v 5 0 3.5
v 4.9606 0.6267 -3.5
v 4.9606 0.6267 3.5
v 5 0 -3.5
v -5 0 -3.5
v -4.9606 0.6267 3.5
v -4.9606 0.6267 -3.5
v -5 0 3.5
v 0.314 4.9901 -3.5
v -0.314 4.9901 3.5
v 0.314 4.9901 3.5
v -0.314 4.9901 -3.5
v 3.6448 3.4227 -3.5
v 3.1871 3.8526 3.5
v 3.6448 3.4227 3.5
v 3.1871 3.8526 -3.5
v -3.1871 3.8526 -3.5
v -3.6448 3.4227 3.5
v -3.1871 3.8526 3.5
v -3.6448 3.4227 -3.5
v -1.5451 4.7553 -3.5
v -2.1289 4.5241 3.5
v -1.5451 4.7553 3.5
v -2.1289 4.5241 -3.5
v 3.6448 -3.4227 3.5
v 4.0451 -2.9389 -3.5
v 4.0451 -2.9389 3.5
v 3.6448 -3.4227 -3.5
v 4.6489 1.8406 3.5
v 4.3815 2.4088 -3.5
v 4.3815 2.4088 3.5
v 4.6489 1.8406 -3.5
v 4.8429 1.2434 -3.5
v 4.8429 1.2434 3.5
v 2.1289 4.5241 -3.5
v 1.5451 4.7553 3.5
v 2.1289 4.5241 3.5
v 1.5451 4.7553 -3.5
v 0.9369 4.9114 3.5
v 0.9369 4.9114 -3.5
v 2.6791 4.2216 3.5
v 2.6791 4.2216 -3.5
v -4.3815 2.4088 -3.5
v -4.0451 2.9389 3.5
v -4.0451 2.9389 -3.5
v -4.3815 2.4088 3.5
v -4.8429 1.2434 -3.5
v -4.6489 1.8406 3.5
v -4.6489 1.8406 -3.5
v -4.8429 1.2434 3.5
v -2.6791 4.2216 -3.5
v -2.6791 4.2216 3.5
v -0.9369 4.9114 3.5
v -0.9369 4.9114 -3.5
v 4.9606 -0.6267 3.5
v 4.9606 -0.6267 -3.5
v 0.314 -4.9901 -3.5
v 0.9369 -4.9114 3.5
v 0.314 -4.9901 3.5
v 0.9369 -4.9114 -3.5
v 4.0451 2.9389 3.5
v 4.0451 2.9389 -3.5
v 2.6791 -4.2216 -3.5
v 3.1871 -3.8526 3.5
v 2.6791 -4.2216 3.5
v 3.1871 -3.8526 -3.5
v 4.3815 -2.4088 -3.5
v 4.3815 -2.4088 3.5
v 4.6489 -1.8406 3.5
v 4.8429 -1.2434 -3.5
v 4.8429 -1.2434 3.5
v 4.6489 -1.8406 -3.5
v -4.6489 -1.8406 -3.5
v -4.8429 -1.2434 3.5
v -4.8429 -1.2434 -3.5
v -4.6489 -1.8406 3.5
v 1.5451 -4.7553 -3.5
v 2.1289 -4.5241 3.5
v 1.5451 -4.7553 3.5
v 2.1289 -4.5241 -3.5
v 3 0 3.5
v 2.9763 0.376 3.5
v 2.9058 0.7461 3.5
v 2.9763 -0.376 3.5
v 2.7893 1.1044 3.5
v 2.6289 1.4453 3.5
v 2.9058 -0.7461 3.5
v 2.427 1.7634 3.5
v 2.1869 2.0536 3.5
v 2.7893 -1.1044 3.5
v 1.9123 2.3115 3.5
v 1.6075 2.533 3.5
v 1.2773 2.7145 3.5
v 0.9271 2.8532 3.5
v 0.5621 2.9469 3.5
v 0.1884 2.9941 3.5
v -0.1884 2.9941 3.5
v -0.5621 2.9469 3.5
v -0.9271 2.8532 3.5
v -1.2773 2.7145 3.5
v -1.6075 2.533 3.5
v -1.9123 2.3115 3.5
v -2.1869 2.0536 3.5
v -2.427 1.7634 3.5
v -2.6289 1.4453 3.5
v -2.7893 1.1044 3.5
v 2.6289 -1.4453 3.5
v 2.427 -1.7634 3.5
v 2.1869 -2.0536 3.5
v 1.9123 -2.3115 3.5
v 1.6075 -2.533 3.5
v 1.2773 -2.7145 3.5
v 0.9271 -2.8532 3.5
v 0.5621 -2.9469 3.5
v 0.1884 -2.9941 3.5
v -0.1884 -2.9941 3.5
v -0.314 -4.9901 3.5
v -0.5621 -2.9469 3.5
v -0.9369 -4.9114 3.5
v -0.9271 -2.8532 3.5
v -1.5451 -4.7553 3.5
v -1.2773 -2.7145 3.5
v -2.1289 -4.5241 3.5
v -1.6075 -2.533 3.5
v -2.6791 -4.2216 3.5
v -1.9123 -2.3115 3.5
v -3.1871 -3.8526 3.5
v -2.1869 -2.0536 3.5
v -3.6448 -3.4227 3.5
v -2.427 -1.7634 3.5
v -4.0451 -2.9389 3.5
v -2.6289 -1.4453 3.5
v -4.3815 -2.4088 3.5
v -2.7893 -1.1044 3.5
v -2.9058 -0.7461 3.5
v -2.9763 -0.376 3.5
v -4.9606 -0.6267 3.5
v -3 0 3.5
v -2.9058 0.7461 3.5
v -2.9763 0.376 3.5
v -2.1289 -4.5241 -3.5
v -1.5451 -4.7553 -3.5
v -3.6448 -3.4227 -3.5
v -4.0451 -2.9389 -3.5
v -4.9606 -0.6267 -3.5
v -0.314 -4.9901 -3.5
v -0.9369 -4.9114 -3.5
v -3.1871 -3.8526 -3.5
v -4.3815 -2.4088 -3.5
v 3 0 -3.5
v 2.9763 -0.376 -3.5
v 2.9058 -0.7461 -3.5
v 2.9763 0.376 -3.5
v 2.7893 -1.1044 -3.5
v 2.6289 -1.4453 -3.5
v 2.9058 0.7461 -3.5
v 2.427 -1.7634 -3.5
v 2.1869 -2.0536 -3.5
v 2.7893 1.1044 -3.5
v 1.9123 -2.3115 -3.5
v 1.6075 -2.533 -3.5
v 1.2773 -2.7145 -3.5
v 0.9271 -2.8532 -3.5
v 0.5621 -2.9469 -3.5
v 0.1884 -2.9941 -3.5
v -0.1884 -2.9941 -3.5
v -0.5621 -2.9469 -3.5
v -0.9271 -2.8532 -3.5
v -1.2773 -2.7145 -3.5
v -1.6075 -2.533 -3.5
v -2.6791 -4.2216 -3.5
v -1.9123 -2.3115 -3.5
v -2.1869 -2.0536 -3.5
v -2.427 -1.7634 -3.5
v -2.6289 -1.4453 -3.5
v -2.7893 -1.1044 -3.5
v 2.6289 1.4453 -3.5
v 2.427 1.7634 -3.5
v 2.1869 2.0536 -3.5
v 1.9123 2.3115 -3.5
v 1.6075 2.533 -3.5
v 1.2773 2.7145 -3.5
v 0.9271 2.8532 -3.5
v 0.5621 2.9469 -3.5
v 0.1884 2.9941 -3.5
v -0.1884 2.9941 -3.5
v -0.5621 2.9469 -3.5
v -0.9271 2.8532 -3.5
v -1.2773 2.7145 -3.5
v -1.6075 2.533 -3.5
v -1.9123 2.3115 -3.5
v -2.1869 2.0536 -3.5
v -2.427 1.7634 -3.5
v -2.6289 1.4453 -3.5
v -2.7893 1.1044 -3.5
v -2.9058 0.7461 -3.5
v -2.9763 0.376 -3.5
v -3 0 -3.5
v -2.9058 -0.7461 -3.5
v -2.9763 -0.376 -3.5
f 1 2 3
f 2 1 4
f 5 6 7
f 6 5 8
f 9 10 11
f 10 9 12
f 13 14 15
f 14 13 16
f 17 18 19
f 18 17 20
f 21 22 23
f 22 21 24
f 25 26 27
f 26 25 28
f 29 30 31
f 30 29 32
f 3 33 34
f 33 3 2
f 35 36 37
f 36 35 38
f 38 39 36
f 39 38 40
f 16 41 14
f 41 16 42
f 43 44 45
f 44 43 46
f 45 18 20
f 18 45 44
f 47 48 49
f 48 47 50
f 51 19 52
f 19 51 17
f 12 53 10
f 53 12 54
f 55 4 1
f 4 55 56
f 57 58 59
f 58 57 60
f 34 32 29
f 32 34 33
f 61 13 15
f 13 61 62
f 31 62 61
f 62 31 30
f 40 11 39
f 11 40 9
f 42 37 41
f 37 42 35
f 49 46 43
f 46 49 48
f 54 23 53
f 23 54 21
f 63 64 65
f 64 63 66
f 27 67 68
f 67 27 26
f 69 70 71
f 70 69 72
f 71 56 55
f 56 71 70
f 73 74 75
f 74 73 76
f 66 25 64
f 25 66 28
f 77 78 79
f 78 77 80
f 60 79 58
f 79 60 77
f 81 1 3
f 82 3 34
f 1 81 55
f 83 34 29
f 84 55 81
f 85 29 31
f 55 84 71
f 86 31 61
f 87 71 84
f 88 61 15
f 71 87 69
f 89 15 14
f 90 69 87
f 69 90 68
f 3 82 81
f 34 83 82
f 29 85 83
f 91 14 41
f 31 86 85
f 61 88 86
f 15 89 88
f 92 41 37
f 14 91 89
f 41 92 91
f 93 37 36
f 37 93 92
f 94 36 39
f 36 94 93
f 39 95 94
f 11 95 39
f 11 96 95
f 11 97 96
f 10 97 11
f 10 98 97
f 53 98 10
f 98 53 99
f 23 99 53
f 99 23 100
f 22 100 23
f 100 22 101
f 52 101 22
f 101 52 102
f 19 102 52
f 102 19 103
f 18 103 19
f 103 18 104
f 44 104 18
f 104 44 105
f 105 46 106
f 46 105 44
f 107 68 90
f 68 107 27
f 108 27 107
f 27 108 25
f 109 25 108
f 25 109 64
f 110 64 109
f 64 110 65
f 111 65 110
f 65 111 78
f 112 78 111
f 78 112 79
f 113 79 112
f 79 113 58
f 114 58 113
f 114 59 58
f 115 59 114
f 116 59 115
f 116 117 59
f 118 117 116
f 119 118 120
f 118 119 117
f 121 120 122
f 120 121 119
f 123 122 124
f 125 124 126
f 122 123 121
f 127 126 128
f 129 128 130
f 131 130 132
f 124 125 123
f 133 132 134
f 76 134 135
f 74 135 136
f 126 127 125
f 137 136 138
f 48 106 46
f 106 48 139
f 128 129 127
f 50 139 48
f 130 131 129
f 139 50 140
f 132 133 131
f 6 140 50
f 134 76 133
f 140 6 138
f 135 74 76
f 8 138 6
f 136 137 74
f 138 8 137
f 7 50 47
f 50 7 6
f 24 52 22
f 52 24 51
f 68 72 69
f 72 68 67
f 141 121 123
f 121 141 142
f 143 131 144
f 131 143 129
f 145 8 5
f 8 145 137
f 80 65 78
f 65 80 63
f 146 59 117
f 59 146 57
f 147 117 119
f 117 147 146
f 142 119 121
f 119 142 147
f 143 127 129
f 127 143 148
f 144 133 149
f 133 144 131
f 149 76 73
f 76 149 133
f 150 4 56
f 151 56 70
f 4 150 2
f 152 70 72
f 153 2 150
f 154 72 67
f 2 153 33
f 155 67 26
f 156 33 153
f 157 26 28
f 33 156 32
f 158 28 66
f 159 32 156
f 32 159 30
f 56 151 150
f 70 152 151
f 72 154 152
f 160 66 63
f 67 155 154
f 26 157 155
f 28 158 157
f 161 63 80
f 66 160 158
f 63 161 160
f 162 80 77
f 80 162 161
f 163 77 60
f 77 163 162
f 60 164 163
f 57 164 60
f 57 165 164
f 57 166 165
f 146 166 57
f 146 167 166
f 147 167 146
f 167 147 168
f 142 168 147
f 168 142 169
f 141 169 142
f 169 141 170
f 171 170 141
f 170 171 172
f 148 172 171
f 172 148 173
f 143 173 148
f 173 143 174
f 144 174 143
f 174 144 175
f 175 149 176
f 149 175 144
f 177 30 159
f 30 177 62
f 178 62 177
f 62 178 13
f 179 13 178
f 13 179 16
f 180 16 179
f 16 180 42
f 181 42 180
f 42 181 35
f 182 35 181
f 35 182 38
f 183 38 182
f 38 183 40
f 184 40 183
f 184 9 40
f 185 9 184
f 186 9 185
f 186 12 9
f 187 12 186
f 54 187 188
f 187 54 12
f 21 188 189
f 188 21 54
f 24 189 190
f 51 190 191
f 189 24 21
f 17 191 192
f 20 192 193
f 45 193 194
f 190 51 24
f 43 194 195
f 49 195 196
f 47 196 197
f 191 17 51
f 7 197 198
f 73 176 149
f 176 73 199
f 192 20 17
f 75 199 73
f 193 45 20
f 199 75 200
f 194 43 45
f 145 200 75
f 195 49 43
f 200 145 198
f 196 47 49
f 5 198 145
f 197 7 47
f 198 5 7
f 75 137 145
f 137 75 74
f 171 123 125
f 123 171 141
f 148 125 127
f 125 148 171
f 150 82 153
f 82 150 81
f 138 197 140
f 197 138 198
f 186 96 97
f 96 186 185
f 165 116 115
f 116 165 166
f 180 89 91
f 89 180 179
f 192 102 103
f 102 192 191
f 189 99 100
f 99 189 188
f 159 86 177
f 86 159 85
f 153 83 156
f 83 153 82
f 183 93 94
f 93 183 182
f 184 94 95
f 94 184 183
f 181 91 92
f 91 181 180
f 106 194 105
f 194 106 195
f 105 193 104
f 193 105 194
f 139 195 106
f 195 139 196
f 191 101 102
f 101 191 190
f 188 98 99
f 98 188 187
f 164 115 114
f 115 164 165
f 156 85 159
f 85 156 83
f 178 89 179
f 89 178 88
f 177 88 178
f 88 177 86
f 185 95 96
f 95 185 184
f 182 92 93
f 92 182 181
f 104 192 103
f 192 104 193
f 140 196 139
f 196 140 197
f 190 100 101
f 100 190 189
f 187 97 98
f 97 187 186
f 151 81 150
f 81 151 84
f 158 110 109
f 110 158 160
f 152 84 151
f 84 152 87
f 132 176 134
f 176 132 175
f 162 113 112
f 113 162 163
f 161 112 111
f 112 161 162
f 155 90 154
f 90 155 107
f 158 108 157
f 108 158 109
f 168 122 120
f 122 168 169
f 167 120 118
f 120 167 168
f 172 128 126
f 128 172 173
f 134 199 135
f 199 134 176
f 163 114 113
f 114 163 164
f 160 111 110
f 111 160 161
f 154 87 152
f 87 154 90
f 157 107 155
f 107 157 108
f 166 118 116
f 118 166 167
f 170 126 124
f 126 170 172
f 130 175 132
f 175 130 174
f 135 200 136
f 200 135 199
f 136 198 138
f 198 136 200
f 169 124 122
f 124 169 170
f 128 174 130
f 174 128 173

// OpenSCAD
$fn = 50;


difference() {
	union() {
		translate(v = [0, 0, -3.5000000000]) {
			cylinder(h = 7, r = 5.0000000000);
		}
	}
	union() {
		translate(v = [0, 0, -100.0000000000]) {
			cylinder(h = 200, r = 3.0000000000);
		}
	}
}
